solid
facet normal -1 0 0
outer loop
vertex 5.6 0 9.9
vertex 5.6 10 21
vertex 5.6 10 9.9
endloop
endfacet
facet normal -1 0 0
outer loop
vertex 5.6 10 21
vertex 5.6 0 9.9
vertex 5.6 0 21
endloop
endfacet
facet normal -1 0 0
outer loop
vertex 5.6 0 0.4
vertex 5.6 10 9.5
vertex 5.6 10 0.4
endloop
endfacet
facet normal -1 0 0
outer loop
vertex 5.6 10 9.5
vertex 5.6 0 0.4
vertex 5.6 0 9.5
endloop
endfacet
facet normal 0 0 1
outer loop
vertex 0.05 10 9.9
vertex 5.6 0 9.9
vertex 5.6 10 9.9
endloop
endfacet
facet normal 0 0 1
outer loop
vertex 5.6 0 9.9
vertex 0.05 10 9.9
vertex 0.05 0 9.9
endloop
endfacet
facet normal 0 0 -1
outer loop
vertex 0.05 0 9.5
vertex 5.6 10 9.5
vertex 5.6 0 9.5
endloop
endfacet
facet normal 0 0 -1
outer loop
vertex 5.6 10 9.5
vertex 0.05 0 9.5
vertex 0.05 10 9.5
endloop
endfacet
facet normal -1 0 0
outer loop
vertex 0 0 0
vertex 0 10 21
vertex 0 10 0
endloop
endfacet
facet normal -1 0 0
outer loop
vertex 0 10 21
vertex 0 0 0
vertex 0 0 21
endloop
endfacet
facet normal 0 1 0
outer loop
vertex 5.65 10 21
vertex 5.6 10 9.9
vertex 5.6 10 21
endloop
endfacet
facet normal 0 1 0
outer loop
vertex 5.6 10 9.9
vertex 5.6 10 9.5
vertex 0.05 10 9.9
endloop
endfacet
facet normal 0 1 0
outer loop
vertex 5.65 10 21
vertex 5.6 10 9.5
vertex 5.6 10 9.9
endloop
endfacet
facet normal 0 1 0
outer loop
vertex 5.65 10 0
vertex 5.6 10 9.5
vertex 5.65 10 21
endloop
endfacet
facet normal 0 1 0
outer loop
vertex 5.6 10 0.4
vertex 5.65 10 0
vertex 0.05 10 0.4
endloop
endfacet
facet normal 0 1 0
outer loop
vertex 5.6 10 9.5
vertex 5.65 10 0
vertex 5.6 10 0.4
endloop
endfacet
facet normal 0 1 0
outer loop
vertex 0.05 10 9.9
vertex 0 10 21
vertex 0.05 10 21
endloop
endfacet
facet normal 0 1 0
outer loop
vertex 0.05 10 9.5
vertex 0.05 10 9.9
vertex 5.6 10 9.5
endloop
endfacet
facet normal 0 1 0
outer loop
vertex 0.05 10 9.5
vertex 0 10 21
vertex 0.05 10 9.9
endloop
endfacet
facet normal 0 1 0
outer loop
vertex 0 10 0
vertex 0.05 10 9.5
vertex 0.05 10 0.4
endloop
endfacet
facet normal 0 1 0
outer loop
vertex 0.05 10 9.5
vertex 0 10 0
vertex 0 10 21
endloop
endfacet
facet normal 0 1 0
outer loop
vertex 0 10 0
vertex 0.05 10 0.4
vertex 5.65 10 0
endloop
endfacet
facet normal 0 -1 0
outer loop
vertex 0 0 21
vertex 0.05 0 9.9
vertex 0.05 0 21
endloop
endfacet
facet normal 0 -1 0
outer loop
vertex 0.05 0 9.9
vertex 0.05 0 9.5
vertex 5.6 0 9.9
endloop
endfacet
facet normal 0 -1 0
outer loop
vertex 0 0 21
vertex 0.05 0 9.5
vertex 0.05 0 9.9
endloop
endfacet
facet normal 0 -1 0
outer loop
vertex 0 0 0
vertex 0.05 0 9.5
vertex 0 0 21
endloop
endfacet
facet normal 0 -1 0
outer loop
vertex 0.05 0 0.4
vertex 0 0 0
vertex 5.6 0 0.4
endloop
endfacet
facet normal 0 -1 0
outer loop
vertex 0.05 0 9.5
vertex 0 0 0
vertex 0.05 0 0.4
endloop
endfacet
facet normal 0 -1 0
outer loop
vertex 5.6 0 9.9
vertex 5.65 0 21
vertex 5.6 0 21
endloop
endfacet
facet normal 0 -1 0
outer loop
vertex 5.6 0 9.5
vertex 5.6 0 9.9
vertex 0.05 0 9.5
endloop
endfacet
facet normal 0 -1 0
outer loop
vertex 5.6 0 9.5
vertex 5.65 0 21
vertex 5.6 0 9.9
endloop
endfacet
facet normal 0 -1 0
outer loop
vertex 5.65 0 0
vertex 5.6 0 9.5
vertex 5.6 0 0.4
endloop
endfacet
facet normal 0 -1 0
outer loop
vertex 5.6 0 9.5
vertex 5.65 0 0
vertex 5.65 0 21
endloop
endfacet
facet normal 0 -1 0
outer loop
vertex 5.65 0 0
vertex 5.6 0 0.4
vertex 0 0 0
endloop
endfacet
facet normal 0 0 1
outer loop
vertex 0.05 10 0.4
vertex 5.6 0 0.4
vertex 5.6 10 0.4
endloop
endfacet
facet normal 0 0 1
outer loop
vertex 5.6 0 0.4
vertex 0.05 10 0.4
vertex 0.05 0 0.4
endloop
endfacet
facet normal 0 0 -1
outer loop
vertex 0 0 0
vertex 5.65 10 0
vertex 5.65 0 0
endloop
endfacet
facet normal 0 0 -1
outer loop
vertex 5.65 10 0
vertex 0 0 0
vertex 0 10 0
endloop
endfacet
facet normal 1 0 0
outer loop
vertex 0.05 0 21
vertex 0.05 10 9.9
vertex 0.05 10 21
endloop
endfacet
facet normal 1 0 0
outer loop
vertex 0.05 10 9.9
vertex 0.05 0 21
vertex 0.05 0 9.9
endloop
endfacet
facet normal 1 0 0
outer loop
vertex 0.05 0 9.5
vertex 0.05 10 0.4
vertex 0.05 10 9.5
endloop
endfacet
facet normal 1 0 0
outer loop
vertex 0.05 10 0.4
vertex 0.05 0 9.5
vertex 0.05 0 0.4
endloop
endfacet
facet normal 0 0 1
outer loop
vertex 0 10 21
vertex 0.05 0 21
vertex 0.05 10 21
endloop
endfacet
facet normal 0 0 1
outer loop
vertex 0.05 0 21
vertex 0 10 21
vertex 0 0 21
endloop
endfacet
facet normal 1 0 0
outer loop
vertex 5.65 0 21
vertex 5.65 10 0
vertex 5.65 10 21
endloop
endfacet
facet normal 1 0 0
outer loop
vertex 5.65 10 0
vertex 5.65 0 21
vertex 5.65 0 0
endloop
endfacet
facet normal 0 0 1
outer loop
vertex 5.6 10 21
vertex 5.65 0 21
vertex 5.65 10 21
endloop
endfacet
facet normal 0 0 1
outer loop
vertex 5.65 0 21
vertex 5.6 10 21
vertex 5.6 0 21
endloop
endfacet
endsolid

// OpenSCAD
h_top = 11.5;
h_bottom = 9.5;
n_blocks = 13;
depth = 10;
//                Top of of the cathedral
// <----------------------------------------------------


floor_thickness = 4;
cathedral_width = 5.6;

//                Height of the Red Book

translate([0,0, h_bottom]) cube([cathedral_width,depth,.4]);
cube([cathedral_width,depth,.4]);

// <---------------------------------------------------



cm_per_block = h_bottom/n_blocks;
cube([0.05, 10, h_bottom+h_top]);
translate([cathedral_width,0,0])
  cube([0.05, 10, h_bottom+h_top]);






// ==========
